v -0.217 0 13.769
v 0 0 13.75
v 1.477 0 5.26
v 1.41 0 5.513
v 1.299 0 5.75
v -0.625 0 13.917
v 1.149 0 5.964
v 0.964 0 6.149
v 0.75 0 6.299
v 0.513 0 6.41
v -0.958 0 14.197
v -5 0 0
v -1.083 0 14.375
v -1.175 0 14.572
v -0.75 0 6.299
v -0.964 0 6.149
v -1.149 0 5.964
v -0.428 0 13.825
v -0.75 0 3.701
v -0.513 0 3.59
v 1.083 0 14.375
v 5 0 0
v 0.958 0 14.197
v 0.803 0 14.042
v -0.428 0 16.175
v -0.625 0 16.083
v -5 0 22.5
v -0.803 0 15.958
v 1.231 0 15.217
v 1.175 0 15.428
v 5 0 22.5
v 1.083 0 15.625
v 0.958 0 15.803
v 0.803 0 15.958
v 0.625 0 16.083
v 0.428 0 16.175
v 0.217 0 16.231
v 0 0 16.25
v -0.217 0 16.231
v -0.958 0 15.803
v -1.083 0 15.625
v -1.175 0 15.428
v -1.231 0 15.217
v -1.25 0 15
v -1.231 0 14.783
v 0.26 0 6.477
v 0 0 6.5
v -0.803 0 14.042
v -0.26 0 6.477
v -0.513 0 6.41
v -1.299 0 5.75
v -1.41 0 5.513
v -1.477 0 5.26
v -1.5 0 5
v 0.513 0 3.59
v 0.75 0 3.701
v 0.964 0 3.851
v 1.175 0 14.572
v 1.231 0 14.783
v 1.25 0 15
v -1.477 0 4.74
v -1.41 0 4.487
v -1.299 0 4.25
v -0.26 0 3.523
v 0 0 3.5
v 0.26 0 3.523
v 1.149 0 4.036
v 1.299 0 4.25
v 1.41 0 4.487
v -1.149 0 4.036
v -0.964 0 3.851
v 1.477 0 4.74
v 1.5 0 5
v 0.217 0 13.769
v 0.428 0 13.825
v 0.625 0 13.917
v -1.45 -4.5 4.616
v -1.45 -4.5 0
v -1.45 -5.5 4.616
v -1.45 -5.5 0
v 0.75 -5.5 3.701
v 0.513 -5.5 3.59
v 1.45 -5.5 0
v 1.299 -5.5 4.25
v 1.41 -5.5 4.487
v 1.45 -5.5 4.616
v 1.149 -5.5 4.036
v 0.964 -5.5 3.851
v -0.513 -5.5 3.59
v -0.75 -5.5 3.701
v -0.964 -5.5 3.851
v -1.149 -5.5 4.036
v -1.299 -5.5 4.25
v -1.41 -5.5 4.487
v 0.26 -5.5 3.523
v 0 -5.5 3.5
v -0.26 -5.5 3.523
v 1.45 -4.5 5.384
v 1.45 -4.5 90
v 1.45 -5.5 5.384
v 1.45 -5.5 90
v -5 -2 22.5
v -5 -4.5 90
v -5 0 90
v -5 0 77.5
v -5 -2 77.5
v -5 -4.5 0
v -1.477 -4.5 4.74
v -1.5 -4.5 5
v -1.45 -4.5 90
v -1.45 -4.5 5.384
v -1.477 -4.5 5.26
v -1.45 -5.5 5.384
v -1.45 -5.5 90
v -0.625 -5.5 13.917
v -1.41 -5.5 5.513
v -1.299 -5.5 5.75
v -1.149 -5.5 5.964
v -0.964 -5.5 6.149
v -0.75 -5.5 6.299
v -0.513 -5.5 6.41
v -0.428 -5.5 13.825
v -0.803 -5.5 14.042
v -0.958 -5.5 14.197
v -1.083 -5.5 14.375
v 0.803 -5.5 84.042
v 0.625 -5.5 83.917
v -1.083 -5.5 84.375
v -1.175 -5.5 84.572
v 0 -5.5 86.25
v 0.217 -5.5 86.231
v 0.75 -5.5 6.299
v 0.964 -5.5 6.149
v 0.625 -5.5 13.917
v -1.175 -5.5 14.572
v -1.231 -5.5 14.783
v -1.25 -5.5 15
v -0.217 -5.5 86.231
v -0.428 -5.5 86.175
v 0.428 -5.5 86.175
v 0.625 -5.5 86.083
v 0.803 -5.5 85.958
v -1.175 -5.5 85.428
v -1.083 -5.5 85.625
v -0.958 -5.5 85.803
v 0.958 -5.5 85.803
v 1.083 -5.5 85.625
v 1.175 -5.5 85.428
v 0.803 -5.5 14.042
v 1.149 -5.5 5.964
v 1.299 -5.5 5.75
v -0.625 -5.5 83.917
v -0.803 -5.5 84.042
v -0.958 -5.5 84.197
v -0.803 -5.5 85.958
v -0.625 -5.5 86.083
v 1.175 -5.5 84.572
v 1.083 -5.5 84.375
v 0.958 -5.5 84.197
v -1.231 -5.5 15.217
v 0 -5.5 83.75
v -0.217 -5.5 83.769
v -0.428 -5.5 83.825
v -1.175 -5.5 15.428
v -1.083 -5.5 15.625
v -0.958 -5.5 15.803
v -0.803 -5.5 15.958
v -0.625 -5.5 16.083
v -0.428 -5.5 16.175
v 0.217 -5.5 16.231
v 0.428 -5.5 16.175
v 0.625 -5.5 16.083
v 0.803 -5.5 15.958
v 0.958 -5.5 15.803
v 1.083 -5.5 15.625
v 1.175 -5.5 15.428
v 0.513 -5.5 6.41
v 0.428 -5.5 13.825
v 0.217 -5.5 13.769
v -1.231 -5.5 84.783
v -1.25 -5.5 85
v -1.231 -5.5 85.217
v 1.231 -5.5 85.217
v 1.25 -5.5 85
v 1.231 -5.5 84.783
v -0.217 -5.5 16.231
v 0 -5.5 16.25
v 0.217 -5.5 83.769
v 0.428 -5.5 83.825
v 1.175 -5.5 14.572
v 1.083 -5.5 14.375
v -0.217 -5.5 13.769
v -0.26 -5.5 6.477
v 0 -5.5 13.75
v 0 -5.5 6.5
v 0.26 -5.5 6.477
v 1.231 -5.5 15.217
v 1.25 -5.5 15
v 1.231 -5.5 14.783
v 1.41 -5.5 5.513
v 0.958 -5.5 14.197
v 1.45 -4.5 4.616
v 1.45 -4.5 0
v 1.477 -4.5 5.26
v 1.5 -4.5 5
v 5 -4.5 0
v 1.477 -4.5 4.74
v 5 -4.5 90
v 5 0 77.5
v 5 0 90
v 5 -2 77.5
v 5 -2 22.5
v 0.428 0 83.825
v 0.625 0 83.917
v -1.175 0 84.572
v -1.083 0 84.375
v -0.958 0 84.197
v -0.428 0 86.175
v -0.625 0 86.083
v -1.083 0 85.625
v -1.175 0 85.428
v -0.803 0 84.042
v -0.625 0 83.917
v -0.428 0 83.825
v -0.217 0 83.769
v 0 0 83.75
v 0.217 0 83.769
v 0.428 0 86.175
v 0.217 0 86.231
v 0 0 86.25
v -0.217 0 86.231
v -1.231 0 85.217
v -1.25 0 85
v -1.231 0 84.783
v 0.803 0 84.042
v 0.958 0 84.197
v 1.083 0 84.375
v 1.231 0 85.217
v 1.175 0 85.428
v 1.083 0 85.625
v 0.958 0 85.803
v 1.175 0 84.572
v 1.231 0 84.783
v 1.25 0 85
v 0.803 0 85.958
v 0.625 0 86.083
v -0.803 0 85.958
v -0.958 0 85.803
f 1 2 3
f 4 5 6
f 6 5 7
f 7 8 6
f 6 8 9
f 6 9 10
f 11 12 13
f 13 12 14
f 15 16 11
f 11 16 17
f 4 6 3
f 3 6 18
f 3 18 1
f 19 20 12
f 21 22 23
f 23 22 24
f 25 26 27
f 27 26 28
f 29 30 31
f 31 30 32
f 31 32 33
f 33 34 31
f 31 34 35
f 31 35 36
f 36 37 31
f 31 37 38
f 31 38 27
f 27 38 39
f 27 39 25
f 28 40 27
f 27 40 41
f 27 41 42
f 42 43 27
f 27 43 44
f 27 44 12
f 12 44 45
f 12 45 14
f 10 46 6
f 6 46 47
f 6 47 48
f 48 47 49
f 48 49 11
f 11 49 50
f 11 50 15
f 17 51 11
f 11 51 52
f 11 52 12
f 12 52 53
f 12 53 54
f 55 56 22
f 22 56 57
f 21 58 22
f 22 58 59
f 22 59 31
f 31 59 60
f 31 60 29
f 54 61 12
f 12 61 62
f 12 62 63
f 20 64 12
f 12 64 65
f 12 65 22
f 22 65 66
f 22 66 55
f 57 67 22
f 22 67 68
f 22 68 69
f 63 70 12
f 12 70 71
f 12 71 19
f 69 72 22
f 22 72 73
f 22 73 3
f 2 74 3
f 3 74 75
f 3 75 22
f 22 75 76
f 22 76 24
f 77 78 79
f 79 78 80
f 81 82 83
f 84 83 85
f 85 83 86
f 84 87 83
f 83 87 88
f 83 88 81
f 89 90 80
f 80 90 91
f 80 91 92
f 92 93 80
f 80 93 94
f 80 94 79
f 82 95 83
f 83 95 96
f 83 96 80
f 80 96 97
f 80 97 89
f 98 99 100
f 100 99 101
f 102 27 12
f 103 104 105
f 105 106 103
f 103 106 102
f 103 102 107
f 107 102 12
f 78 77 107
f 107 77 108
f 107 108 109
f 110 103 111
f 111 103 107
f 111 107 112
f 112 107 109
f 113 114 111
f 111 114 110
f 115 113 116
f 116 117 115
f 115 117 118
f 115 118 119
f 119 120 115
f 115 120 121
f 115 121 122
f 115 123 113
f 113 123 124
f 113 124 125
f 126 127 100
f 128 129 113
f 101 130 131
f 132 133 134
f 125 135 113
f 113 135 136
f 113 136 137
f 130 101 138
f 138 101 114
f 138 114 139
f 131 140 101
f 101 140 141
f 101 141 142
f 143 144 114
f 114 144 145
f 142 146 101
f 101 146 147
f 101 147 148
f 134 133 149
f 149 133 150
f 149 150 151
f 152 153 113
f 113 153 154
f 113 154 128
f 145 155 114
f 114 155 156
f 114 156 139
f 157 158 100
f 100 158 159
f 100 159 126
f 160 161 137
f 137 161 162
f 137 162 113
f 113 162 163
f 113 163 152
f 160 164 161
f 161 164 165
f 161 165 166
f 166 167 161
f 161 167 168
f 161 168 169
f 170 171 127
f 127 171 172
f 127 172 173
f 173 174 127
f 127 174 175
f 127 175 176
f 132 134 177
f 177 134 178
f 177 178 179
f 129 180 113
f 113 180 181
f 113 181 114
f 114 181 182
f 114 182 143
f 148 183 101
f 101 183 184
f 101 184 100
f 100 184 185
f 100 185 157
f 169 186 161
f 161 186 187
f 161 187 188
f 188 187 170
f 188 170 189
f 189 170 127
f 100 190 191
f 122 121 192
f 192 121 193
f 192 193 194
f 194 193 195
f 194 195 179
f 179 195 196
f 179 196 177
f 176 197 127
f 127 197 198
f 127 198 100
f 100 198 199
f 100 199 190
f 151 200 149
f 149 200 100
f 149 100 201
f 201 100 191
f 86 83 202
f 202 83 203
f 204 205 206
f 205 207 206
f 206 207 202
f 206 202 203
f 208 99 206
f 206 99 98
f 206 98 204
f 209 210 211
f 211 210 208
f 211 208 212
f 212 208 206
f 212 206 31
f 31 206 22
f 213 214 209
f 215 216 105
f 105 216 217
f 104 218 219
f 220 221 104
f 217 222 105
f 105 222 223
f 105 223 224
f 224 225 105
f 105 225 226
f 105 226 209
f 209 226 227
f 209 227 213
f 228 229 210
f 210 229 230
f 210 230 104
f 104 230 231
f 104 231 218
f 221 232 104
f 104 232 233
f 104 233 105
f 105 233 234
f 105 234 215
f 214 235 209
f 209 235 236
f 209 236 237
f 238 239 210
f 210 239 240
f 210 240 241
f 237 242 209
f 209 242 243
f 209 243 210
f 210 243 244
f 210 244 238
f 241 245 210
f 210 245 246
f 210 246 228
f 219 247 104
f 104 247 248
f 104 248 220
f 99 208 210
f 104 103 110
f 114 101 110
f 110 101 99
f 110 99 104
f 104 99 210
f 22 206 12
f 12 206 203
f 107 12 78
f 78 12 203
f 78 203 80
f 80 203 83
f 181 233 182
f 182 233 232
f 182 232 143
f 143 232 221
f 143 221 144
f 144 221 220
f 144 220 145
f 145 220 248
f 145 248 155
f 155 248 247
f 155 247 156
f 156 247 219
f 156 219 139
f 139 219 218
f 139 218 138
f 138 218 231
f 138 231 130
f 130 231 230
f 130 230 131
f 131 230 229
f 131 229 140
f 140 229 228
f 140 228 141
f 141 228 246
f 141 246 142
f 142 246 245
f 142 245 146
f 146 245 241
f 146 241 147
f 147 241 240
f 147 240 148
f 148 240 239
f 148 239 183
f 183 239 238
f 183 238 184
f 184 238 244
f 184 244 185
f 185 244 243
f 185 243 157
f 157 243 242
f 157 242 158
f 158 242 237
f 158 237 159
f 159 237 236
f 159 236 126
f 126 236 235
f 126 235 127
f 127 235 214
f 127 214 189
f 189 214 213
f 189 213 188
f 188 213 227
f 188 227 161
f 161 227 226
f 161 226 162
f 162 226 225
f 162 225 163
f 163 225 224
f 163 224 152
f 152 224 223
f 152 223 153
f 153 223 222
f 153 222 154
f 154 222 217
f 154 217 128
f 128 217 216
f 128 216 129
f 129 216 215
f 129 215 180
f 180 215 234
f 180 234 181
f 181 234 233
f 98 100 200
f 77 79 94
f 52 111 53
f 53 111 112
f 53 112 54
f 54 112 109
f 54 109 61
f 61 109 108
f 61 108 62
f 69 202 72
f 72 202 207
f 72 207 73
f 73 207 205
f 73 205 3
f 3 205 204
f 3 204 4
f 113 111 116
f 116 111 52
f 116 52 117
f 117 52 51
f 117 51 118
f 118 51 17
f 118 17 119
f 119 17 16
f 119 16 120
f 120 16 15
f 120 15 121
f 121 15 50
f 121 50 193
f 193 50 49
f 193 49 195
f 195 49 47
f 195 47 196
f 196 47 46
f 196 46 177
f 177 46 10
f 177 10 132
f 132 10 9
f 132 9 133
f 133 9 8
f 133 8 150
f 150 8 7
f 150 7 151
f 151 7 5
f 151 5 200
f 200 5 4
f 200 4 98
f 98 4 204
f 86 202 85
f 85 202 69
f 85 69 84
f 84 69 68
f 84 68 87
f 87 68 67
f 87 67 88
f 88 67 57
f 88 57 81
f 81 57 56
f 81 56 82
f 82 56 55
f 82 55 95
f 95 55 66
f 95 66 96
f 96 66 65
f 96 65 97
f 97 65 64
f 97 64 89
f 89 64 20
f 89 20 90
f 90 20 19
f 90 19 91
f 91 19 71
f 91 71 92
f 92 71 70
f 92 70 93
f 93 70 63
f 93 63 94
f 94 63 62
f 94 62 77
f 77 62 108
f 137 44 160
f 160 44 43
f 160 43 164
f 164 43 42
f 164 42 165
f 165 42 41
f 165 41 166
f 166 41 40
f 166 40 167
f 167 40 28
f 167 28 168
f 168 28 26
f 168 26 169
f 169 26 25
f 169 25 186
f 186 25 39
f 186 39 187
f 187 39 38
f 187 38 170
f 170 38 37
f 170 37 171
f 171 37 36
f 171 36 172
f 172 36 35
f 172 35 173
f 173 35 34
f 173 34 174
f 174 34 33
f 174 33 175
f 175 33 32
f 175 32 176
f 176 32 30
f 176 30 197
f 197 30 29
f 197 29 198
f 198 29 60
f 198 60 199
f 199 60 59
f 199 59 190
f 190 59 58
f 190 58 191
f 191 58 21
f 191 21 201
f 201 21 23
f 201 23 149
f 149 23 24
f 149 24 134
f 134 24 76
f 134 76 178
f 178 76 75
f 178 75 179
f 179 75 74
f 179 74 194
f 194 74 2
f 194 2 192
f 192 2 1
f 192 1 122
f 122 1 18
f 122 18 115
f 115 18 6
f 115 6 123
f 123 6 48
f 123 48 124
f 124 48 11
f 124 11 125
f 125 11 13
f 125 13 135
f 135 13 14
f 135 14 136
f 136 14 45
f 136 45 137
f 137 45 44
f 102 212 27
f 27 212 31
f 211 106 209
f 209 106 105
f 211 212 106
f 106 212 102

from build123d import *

# Parameters (mm, degrees)
MAIN_DEPTH      = 90
SKETCH2_R       = 1.25
SKETCH2_R_2     = 1.5
MAINHOLES_DEPTH = 6.5
SKETCH3_W       = 10
SKETCH3_H       = 55
PINHOLES_DEPTH  = 2


with BuildPart() as part:
    # Sketch1 → Main (new body)
    with BuildSketch(Plane.XY):
        Polygon((-5, 0), (5, 0), (5, -4.5), (1.45, -4.5), (1.45, -5.5), (-1.45, -5.5), (-1.45, -4.5), (-5, -4.5), align=None)
    extrude(amount=MAIN_DEPTH)

    # Sketch2 → MainHoles (cut, through all)
    with BuildSketch(Plane(origin=(0, 0, 0), x_dir=(1, 0, 0), z_dir=(0, 1, 0))):
        with Locations((0, -85)):
            Circle(SKETCH2_R)
        with Locations((0, -15)):
            Circle(SKETCH2_R)
        with Locations((0, -5)):
            Circle(SKETCH2_R_2)
    extrude(amount=-MAINHOLES_DEPTH, mode=Mode.SUBTRACT)

    # Sketch3 → PinHoles (cut)
    with BuildSketch(Plane(origin=(0, 0, 0), x_dir=(1, 0, 0), z_dir=(0, 1, 0))):
        with Locations((0, -50)):
            Rectangle(SKETCH3_W, SKETCH3_H)
    extrude(amount=-PINHOLES_DEPTH, mode=Mode.SUBTRACT)


solid = part.part
